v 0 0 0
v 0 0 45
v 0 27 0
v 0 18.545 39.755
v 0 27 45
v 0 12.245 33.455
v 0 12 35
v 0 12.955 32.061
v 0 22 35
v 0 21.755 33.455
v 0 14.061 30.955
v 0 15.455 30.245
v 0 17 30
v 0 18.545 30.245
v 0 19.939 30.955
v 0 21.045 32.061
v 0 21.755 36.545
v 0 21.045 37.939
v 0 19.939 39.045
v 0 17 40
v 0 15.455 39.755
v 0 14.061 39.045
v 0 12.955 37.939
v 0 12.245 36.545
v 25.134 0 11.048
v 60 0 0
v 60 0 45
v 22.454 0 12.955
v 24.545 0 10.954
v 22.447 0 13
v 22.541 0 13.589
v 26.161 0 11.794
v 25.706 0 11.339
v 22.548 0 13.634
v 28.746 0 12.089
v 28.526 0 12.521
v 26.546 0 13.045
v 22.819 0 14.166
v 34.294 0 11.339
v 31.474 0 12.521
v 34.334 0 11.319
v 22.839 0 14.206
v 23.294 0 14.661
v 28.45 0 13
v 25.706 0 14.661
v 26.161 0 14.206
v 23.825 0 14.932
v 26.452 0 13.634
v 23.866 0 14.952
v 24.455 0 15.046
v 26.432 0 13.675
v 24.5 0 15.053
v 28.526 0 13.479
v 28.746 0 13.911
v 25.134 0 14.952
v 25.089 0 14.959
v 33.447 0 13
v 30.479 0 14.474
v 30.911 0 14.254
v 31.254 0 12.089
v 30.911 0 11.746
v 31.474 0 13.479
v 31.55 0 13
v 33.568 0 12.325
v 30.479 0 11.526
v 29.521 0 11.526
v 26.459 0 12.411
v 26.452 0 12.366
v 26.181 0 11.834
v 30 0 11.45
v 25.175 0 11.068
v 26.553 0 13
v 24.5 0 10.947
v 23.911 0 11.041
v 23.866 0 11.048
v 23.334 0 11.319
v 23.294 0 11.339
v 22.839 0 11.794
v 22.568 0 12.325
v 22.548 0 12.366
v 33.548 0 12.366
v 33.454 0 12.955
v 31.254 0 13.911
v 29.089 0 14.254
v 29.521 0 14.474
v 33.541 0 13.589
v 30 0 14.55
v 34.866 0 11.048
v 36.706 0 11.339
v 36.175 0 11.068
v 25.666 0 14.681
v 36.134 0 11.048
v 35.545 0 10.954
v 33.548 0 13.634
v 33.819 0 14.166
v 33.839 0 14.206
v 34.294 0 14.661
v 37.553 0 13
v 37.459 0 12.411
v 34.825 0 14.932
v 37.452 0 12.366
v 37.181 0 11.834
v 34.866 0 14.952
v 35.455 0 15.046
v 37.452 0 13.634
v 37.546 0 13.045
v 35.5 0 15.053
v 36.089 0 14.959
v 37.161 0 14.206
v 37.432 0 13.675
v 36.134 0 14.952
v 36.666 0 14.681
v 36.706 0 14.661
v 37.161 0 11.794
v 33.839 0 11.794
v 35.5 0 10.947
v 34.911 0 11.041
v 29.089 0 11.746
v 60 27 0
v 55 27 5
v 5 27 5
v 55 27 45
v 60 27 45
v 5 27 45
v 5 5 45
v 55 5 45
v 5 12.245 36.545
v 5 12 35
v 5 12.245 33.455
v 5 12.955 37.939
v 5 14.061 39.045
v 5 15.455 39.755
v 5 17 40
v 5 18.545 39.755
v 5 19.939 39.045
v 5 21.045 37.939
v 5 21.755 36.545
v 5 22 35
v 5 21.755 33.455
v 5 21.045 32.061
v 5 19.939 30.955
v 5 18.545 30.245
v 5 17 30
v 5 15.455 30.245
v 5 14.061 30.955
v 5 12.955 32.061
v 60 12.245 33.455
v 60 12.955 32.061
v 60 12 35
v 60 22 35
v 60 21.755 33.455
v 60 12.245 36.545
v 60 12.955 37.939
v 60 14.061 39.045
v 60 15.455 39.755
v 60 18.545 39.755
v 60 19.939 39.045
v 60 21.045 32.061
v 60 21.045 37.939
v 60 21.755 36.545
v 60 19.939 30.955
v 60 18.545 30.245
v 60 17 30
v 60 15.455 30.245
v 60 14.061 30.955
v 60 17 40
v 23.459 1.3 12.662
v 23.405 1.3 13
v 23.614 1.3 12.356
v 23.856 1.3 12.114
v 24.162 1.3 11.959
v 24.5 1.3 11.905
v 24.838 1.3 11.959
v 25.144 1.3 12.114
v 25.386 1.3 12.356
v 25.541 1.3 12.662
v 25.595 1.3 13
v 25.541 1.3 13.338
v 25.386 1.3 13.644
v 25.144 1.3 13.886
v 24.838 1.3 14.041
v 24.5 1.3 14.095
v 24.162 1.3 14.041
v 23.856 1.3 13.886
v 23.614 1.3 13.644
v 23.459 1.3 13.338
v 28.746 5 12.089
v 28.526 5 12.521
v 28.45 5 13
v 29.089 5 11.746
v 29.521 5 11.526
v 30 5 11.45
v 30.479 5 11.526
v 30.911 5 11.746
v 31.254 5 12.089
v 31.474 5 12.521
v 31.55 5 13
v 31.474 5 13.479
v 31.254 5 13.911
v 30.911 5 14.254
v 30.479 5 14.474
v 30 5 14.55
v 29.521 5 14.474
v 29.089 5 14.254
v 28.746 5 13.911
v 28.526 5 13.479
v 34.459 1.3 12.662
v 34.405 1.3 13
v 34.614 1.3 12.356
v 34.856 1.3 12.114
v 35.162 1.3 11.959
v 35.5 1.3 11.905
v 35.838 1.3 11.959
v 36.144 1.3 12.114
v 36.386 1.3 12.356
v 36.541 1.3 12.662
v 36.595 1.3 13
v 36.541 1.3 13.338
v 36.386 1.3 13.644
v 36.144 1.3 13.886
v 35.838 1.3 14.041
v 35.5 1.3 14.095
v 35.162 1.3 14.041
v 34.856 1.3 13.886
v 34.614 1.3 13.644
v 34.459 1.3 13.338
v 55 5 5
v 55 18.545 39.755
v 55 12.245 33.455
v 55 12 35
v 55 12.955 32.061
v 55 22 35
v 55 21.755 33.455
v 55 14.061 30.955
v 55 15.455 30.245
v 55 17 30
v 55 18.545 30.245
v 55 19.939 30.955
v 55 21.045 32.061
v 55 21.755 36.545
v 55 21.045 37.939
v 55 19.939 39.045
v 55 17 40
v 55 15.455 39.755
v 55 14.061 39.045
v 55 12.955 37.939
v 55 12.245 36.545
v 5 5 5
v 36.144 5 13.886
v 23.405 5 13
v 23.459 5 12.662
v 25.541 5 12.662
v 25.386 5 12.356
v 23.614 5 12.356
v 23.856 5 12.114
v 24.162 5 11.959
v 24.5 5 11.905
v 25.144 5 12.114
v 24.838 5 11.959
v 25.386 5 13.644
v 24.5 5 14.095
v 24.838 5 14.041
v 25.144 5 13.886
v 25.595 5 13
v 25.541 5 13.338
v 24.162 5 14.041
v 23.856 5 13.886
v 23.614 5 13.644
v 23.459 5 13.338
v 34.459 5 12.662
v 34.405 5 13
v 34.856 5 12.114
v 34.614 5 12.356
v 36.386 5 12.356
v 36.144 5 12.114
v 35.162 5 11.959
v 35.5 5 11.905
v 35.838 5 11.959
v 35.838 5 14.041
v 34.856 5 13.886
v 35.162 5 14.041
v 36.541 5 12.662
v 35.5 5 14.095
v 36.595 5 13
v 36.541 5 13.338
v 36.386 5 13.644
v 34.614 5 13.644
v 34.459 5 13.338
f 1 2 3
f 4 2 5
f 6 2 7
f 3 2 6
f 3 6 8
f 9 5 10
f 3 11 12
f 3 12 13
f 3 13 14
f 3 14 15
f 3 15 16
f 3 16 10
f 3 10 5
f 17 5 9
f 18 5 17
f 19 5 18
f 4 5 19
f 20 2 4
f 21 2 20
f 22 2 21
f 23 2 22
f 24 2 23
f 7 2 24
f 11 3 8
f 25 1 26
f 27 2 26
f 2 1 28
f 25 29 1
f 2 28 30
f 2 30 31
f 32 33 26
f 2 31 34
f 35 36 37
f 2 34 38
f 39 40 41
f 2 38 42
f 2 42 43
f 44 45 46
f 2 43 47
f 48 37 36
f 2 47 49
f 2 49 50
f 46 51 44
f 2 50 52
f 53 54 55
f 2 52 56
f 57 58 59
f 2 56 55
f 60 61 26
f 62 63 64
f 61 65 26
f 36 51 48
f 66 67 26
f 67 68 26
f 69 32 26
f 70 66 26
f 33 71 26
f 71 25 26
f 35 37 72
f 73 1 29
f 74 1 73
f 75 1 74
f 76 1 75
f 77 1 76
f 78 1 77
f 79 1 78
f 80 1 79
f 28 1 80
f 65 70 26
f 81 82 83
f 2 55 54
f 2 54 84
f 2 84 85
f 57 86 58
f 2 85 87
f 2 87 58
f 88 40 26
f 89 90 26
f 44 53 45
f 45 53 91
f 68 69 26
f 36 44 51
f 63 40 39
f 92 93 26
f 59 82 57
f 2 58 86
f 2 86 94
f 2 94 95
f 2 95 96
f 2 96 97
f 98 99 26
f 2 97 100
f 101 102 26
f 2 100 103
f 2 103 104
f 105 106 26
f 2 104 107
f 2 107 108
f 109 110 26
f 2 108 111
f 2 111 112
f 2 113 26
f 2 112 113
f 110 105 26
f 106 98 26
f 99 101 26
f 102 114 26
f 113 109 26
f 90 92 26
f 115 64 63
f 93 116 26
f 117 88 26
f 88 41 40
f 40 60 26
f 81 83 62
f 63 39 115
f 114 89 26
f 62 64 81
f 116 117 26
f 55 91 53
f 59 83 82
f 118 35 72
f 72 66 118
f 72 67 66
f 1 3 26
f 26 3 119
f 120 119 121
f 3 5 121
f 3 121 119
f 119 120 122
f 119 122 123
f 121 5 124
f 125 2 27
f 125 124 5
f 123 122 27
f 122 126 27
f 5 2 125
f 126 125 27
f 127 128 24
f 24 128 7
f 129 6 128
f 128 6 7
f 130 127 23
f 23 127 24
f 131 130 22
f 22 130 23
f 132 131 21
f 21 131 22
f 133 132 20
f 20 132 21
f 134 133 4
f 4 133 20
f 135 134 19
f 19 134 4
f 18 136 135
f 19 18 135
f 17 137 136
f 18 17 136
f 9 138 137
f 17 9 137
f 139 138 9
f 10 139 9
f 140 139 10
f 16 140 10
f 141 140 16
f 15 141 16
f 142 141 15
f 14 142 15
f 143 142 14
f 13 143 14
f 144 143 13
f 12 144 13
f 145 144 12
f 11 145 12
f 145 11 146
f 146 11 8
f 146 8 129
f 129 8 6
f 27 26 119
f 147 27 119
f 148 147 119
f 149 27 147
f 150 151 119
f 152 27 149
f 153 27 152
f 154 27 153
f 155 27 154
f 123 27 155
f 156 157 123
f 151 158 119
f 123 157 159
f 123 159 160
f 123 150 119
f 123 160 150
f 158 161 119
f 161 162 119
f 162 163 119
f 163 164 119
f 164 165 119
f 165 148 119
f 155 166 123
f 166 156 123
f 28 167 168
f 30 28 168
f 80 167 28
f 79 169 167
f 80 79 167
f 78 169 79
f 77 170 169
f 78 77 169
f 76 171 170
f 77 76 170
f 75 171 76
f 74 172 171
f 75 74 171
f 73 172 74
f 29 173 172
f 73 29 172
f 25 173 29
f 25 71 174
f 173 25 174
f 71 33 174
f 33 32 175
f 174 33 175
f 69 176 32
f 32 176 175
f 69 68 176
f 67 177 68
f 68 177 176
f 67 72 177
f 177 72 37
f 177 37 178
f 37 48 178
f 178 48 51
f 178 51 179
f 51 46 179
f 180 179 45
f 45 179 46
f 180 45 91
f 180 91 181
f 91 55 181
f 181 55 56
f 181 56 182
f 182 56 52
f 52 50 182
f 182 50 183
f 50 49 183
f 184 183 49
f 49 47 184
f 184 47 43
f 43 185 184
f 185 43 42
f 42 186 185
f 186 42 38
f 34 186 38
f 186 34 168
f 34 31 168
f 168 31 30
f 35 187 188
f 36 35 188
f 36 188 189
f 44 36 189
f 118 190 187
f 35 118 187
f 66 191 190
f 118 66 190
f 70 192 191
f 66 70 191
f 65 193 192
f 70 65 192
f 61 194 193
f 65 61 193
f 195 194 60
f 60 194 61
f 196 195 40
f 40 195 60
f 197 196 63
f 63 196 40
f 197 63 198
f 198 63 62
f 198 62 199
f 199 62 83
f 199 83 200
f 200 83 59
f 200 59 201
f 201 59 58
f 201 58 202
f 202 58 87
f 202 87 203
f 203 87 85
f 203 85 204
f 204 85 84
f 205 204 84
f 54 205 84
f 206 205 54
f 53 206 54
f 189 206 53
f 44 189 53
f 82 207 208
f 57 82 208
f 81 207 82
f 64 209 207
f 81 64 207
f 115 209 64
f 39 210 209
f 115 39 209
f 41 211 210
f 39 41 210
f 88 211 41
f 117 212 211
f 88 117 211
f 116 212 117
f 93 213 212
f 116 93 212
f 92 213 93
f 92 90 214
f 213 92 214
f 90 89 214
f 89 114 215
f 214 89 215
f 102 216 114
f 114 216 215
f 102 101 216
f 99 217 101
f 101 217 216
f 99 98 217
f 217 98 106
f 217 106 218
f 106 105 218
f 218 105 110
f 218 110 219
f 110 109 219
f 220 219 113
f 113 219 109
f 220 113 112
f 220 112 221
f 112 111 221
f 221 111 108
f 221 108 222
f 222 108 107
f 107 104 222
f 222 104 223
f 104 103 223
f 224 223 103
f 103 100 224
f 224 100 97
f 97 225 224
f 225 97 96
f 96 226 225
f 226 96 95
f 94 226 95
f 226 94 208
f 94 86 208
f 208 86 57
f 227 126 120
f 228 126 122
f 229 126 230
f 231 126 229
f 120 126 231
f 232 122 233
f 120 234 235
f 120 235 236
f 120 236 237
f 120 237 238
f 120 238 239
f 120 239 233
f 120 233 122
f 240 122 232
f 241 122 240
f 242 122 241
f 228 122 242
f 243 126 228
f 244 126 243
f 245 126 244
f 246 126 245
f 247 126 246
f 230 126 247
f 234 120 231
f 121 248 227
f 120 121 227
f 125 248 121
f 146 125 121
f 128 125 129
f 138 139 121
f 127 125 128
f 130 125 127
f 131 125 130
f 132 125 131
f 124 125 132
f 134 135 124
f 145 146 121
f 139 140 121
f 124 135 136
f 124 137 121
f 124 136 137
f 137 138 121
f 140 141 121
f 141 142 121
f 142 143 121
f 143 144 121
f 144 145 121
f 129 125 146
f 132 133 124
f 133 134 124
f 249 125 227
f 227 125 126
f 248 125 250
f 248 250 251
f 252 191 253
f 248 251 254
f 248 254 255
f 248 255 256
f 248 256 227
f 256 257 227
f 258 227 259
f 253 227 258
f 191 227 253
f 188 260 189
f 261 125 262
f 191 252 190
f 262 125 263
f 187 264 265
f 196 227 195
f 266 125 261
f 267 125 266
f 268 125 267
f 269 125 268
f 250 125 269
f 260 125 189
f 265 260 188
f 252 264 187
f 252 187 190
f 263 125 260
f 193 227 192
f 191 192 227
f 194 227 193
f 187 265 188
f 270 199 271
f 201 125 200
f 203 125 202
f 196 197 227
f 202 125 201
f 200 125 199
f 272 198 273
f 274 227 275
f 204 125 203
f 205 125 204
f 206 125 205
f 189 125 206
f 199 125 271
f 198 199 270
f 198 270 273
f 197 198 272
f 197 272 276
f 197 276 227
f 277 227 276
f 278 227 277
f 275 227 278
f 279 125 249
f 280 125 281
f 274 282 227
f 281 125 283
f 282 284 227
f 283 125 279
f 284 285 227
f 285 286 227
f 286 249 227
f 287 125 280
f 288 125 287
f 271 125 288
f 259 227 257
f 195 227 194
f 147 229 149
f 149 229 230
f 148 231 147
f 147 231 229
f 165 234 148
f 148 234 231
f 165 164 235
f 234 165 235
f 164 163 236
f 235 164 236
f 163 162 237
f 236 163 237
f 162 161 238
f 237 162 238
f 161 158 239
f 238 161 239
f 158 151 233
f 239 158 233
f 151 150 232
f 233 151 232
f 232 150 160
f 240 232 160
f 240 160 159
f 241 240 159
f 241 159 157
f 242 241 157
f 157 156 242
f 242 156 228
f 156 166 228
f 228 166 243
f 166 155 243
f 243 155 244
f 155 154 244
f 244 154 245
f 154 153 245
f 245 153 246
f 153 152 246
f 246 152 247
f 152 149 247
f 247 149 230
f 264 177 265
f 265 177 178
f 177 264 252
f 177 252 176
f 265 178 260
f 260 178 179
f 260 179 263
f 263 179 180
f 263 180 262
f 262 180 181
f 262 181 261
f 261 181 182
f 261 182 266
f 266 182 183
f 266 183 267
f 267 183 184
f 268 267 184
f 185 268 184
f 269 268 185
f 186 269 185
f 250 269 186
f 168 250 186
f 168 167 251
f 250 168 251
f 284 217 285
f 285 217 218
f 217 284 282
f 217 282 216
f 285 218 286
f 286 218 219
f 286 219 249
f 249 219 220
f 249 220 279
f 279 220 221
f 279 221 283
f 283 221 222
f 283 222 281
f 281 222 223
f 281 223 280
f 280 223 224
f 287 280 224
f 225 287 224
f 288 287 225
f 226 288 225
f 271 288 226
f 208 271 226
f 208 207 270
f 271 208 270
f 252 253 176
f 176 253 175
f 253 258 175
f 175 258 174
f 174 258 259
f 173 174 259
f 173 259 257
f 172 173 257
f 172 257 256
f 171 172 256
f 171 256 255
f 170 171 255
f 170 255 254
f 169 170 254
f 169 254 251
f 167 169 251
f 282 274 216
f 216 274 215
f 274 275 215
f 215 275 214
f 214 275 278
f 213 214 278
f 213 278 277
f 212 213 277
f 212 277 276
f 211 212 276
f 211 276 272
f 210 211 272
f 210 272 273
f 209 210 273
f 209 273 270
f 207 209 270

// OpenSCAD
//Part:		DC Motor Case
//Desc:		For Petri Dish Specimen Spinner
//Author:	Jim Hingst
//Date:		11/03/2014
//Units:		mm

// variables
wall_thick = 5;
case_width = 60;
case_depth = 27;//this is motor length 12mm plus 5mm front face 
case_height = 45;

//main case
module case() {
union(){
	//bottom plate
	cube([case_width,case_depth,wall_thick]);

	//left face plate
	translate([0,0,wall_thick])cube([wall_thick,case_depth,case_height - wall_thick]);

	//right face plate
	translate([case_width - wall_thick,0,wall_thick])cube([wall_thick,case_depth,case_height - wall_thick]);

	//front plate
	translate([wall_thick,0,wall_thick])cube([case_width - (2*wall_thick),wall_thick,case_height - wall_thick]);
}
}

module case_holed(){
difference(){
case();
//shaft hole
translate([60/2,-1,13])rotate(-90,[1,0,0])cylinder(h=7,r=1.55,$fn=20);
//screw hole right
translate([60/2+5.5,-1,13])rotate(-90,[1,0,0])cylinder(h=7,r=2.19/2,$fn=20);
//screw hole left
translate([60/2-5.5,-1,13])rotate(-90,[1,0,0])cylinder(h=7,r=2.19/2,$fn=20);

//screw head right
translate([60/2+5.5,-.2,13])rotate(-90,[1,0,0])cylinder(h=1.3+.2,r1=4.2/2+.1,r2=2.19/2,$fn=20);
//screw head left
translate([60/2-5.5,-.2,13])rotate(-90,[1,0,0])cylinder(h=1.3+.2,r1=4.2/2+.1,r2=2.19/2,$fn=20);
//arm axle hole
translate([-.5,case_depth-10,case_height-10])rotate(90,[0,1,0])cylinder(h=case_width+1,r=5,$fn=20);

}
}

case_holed();
